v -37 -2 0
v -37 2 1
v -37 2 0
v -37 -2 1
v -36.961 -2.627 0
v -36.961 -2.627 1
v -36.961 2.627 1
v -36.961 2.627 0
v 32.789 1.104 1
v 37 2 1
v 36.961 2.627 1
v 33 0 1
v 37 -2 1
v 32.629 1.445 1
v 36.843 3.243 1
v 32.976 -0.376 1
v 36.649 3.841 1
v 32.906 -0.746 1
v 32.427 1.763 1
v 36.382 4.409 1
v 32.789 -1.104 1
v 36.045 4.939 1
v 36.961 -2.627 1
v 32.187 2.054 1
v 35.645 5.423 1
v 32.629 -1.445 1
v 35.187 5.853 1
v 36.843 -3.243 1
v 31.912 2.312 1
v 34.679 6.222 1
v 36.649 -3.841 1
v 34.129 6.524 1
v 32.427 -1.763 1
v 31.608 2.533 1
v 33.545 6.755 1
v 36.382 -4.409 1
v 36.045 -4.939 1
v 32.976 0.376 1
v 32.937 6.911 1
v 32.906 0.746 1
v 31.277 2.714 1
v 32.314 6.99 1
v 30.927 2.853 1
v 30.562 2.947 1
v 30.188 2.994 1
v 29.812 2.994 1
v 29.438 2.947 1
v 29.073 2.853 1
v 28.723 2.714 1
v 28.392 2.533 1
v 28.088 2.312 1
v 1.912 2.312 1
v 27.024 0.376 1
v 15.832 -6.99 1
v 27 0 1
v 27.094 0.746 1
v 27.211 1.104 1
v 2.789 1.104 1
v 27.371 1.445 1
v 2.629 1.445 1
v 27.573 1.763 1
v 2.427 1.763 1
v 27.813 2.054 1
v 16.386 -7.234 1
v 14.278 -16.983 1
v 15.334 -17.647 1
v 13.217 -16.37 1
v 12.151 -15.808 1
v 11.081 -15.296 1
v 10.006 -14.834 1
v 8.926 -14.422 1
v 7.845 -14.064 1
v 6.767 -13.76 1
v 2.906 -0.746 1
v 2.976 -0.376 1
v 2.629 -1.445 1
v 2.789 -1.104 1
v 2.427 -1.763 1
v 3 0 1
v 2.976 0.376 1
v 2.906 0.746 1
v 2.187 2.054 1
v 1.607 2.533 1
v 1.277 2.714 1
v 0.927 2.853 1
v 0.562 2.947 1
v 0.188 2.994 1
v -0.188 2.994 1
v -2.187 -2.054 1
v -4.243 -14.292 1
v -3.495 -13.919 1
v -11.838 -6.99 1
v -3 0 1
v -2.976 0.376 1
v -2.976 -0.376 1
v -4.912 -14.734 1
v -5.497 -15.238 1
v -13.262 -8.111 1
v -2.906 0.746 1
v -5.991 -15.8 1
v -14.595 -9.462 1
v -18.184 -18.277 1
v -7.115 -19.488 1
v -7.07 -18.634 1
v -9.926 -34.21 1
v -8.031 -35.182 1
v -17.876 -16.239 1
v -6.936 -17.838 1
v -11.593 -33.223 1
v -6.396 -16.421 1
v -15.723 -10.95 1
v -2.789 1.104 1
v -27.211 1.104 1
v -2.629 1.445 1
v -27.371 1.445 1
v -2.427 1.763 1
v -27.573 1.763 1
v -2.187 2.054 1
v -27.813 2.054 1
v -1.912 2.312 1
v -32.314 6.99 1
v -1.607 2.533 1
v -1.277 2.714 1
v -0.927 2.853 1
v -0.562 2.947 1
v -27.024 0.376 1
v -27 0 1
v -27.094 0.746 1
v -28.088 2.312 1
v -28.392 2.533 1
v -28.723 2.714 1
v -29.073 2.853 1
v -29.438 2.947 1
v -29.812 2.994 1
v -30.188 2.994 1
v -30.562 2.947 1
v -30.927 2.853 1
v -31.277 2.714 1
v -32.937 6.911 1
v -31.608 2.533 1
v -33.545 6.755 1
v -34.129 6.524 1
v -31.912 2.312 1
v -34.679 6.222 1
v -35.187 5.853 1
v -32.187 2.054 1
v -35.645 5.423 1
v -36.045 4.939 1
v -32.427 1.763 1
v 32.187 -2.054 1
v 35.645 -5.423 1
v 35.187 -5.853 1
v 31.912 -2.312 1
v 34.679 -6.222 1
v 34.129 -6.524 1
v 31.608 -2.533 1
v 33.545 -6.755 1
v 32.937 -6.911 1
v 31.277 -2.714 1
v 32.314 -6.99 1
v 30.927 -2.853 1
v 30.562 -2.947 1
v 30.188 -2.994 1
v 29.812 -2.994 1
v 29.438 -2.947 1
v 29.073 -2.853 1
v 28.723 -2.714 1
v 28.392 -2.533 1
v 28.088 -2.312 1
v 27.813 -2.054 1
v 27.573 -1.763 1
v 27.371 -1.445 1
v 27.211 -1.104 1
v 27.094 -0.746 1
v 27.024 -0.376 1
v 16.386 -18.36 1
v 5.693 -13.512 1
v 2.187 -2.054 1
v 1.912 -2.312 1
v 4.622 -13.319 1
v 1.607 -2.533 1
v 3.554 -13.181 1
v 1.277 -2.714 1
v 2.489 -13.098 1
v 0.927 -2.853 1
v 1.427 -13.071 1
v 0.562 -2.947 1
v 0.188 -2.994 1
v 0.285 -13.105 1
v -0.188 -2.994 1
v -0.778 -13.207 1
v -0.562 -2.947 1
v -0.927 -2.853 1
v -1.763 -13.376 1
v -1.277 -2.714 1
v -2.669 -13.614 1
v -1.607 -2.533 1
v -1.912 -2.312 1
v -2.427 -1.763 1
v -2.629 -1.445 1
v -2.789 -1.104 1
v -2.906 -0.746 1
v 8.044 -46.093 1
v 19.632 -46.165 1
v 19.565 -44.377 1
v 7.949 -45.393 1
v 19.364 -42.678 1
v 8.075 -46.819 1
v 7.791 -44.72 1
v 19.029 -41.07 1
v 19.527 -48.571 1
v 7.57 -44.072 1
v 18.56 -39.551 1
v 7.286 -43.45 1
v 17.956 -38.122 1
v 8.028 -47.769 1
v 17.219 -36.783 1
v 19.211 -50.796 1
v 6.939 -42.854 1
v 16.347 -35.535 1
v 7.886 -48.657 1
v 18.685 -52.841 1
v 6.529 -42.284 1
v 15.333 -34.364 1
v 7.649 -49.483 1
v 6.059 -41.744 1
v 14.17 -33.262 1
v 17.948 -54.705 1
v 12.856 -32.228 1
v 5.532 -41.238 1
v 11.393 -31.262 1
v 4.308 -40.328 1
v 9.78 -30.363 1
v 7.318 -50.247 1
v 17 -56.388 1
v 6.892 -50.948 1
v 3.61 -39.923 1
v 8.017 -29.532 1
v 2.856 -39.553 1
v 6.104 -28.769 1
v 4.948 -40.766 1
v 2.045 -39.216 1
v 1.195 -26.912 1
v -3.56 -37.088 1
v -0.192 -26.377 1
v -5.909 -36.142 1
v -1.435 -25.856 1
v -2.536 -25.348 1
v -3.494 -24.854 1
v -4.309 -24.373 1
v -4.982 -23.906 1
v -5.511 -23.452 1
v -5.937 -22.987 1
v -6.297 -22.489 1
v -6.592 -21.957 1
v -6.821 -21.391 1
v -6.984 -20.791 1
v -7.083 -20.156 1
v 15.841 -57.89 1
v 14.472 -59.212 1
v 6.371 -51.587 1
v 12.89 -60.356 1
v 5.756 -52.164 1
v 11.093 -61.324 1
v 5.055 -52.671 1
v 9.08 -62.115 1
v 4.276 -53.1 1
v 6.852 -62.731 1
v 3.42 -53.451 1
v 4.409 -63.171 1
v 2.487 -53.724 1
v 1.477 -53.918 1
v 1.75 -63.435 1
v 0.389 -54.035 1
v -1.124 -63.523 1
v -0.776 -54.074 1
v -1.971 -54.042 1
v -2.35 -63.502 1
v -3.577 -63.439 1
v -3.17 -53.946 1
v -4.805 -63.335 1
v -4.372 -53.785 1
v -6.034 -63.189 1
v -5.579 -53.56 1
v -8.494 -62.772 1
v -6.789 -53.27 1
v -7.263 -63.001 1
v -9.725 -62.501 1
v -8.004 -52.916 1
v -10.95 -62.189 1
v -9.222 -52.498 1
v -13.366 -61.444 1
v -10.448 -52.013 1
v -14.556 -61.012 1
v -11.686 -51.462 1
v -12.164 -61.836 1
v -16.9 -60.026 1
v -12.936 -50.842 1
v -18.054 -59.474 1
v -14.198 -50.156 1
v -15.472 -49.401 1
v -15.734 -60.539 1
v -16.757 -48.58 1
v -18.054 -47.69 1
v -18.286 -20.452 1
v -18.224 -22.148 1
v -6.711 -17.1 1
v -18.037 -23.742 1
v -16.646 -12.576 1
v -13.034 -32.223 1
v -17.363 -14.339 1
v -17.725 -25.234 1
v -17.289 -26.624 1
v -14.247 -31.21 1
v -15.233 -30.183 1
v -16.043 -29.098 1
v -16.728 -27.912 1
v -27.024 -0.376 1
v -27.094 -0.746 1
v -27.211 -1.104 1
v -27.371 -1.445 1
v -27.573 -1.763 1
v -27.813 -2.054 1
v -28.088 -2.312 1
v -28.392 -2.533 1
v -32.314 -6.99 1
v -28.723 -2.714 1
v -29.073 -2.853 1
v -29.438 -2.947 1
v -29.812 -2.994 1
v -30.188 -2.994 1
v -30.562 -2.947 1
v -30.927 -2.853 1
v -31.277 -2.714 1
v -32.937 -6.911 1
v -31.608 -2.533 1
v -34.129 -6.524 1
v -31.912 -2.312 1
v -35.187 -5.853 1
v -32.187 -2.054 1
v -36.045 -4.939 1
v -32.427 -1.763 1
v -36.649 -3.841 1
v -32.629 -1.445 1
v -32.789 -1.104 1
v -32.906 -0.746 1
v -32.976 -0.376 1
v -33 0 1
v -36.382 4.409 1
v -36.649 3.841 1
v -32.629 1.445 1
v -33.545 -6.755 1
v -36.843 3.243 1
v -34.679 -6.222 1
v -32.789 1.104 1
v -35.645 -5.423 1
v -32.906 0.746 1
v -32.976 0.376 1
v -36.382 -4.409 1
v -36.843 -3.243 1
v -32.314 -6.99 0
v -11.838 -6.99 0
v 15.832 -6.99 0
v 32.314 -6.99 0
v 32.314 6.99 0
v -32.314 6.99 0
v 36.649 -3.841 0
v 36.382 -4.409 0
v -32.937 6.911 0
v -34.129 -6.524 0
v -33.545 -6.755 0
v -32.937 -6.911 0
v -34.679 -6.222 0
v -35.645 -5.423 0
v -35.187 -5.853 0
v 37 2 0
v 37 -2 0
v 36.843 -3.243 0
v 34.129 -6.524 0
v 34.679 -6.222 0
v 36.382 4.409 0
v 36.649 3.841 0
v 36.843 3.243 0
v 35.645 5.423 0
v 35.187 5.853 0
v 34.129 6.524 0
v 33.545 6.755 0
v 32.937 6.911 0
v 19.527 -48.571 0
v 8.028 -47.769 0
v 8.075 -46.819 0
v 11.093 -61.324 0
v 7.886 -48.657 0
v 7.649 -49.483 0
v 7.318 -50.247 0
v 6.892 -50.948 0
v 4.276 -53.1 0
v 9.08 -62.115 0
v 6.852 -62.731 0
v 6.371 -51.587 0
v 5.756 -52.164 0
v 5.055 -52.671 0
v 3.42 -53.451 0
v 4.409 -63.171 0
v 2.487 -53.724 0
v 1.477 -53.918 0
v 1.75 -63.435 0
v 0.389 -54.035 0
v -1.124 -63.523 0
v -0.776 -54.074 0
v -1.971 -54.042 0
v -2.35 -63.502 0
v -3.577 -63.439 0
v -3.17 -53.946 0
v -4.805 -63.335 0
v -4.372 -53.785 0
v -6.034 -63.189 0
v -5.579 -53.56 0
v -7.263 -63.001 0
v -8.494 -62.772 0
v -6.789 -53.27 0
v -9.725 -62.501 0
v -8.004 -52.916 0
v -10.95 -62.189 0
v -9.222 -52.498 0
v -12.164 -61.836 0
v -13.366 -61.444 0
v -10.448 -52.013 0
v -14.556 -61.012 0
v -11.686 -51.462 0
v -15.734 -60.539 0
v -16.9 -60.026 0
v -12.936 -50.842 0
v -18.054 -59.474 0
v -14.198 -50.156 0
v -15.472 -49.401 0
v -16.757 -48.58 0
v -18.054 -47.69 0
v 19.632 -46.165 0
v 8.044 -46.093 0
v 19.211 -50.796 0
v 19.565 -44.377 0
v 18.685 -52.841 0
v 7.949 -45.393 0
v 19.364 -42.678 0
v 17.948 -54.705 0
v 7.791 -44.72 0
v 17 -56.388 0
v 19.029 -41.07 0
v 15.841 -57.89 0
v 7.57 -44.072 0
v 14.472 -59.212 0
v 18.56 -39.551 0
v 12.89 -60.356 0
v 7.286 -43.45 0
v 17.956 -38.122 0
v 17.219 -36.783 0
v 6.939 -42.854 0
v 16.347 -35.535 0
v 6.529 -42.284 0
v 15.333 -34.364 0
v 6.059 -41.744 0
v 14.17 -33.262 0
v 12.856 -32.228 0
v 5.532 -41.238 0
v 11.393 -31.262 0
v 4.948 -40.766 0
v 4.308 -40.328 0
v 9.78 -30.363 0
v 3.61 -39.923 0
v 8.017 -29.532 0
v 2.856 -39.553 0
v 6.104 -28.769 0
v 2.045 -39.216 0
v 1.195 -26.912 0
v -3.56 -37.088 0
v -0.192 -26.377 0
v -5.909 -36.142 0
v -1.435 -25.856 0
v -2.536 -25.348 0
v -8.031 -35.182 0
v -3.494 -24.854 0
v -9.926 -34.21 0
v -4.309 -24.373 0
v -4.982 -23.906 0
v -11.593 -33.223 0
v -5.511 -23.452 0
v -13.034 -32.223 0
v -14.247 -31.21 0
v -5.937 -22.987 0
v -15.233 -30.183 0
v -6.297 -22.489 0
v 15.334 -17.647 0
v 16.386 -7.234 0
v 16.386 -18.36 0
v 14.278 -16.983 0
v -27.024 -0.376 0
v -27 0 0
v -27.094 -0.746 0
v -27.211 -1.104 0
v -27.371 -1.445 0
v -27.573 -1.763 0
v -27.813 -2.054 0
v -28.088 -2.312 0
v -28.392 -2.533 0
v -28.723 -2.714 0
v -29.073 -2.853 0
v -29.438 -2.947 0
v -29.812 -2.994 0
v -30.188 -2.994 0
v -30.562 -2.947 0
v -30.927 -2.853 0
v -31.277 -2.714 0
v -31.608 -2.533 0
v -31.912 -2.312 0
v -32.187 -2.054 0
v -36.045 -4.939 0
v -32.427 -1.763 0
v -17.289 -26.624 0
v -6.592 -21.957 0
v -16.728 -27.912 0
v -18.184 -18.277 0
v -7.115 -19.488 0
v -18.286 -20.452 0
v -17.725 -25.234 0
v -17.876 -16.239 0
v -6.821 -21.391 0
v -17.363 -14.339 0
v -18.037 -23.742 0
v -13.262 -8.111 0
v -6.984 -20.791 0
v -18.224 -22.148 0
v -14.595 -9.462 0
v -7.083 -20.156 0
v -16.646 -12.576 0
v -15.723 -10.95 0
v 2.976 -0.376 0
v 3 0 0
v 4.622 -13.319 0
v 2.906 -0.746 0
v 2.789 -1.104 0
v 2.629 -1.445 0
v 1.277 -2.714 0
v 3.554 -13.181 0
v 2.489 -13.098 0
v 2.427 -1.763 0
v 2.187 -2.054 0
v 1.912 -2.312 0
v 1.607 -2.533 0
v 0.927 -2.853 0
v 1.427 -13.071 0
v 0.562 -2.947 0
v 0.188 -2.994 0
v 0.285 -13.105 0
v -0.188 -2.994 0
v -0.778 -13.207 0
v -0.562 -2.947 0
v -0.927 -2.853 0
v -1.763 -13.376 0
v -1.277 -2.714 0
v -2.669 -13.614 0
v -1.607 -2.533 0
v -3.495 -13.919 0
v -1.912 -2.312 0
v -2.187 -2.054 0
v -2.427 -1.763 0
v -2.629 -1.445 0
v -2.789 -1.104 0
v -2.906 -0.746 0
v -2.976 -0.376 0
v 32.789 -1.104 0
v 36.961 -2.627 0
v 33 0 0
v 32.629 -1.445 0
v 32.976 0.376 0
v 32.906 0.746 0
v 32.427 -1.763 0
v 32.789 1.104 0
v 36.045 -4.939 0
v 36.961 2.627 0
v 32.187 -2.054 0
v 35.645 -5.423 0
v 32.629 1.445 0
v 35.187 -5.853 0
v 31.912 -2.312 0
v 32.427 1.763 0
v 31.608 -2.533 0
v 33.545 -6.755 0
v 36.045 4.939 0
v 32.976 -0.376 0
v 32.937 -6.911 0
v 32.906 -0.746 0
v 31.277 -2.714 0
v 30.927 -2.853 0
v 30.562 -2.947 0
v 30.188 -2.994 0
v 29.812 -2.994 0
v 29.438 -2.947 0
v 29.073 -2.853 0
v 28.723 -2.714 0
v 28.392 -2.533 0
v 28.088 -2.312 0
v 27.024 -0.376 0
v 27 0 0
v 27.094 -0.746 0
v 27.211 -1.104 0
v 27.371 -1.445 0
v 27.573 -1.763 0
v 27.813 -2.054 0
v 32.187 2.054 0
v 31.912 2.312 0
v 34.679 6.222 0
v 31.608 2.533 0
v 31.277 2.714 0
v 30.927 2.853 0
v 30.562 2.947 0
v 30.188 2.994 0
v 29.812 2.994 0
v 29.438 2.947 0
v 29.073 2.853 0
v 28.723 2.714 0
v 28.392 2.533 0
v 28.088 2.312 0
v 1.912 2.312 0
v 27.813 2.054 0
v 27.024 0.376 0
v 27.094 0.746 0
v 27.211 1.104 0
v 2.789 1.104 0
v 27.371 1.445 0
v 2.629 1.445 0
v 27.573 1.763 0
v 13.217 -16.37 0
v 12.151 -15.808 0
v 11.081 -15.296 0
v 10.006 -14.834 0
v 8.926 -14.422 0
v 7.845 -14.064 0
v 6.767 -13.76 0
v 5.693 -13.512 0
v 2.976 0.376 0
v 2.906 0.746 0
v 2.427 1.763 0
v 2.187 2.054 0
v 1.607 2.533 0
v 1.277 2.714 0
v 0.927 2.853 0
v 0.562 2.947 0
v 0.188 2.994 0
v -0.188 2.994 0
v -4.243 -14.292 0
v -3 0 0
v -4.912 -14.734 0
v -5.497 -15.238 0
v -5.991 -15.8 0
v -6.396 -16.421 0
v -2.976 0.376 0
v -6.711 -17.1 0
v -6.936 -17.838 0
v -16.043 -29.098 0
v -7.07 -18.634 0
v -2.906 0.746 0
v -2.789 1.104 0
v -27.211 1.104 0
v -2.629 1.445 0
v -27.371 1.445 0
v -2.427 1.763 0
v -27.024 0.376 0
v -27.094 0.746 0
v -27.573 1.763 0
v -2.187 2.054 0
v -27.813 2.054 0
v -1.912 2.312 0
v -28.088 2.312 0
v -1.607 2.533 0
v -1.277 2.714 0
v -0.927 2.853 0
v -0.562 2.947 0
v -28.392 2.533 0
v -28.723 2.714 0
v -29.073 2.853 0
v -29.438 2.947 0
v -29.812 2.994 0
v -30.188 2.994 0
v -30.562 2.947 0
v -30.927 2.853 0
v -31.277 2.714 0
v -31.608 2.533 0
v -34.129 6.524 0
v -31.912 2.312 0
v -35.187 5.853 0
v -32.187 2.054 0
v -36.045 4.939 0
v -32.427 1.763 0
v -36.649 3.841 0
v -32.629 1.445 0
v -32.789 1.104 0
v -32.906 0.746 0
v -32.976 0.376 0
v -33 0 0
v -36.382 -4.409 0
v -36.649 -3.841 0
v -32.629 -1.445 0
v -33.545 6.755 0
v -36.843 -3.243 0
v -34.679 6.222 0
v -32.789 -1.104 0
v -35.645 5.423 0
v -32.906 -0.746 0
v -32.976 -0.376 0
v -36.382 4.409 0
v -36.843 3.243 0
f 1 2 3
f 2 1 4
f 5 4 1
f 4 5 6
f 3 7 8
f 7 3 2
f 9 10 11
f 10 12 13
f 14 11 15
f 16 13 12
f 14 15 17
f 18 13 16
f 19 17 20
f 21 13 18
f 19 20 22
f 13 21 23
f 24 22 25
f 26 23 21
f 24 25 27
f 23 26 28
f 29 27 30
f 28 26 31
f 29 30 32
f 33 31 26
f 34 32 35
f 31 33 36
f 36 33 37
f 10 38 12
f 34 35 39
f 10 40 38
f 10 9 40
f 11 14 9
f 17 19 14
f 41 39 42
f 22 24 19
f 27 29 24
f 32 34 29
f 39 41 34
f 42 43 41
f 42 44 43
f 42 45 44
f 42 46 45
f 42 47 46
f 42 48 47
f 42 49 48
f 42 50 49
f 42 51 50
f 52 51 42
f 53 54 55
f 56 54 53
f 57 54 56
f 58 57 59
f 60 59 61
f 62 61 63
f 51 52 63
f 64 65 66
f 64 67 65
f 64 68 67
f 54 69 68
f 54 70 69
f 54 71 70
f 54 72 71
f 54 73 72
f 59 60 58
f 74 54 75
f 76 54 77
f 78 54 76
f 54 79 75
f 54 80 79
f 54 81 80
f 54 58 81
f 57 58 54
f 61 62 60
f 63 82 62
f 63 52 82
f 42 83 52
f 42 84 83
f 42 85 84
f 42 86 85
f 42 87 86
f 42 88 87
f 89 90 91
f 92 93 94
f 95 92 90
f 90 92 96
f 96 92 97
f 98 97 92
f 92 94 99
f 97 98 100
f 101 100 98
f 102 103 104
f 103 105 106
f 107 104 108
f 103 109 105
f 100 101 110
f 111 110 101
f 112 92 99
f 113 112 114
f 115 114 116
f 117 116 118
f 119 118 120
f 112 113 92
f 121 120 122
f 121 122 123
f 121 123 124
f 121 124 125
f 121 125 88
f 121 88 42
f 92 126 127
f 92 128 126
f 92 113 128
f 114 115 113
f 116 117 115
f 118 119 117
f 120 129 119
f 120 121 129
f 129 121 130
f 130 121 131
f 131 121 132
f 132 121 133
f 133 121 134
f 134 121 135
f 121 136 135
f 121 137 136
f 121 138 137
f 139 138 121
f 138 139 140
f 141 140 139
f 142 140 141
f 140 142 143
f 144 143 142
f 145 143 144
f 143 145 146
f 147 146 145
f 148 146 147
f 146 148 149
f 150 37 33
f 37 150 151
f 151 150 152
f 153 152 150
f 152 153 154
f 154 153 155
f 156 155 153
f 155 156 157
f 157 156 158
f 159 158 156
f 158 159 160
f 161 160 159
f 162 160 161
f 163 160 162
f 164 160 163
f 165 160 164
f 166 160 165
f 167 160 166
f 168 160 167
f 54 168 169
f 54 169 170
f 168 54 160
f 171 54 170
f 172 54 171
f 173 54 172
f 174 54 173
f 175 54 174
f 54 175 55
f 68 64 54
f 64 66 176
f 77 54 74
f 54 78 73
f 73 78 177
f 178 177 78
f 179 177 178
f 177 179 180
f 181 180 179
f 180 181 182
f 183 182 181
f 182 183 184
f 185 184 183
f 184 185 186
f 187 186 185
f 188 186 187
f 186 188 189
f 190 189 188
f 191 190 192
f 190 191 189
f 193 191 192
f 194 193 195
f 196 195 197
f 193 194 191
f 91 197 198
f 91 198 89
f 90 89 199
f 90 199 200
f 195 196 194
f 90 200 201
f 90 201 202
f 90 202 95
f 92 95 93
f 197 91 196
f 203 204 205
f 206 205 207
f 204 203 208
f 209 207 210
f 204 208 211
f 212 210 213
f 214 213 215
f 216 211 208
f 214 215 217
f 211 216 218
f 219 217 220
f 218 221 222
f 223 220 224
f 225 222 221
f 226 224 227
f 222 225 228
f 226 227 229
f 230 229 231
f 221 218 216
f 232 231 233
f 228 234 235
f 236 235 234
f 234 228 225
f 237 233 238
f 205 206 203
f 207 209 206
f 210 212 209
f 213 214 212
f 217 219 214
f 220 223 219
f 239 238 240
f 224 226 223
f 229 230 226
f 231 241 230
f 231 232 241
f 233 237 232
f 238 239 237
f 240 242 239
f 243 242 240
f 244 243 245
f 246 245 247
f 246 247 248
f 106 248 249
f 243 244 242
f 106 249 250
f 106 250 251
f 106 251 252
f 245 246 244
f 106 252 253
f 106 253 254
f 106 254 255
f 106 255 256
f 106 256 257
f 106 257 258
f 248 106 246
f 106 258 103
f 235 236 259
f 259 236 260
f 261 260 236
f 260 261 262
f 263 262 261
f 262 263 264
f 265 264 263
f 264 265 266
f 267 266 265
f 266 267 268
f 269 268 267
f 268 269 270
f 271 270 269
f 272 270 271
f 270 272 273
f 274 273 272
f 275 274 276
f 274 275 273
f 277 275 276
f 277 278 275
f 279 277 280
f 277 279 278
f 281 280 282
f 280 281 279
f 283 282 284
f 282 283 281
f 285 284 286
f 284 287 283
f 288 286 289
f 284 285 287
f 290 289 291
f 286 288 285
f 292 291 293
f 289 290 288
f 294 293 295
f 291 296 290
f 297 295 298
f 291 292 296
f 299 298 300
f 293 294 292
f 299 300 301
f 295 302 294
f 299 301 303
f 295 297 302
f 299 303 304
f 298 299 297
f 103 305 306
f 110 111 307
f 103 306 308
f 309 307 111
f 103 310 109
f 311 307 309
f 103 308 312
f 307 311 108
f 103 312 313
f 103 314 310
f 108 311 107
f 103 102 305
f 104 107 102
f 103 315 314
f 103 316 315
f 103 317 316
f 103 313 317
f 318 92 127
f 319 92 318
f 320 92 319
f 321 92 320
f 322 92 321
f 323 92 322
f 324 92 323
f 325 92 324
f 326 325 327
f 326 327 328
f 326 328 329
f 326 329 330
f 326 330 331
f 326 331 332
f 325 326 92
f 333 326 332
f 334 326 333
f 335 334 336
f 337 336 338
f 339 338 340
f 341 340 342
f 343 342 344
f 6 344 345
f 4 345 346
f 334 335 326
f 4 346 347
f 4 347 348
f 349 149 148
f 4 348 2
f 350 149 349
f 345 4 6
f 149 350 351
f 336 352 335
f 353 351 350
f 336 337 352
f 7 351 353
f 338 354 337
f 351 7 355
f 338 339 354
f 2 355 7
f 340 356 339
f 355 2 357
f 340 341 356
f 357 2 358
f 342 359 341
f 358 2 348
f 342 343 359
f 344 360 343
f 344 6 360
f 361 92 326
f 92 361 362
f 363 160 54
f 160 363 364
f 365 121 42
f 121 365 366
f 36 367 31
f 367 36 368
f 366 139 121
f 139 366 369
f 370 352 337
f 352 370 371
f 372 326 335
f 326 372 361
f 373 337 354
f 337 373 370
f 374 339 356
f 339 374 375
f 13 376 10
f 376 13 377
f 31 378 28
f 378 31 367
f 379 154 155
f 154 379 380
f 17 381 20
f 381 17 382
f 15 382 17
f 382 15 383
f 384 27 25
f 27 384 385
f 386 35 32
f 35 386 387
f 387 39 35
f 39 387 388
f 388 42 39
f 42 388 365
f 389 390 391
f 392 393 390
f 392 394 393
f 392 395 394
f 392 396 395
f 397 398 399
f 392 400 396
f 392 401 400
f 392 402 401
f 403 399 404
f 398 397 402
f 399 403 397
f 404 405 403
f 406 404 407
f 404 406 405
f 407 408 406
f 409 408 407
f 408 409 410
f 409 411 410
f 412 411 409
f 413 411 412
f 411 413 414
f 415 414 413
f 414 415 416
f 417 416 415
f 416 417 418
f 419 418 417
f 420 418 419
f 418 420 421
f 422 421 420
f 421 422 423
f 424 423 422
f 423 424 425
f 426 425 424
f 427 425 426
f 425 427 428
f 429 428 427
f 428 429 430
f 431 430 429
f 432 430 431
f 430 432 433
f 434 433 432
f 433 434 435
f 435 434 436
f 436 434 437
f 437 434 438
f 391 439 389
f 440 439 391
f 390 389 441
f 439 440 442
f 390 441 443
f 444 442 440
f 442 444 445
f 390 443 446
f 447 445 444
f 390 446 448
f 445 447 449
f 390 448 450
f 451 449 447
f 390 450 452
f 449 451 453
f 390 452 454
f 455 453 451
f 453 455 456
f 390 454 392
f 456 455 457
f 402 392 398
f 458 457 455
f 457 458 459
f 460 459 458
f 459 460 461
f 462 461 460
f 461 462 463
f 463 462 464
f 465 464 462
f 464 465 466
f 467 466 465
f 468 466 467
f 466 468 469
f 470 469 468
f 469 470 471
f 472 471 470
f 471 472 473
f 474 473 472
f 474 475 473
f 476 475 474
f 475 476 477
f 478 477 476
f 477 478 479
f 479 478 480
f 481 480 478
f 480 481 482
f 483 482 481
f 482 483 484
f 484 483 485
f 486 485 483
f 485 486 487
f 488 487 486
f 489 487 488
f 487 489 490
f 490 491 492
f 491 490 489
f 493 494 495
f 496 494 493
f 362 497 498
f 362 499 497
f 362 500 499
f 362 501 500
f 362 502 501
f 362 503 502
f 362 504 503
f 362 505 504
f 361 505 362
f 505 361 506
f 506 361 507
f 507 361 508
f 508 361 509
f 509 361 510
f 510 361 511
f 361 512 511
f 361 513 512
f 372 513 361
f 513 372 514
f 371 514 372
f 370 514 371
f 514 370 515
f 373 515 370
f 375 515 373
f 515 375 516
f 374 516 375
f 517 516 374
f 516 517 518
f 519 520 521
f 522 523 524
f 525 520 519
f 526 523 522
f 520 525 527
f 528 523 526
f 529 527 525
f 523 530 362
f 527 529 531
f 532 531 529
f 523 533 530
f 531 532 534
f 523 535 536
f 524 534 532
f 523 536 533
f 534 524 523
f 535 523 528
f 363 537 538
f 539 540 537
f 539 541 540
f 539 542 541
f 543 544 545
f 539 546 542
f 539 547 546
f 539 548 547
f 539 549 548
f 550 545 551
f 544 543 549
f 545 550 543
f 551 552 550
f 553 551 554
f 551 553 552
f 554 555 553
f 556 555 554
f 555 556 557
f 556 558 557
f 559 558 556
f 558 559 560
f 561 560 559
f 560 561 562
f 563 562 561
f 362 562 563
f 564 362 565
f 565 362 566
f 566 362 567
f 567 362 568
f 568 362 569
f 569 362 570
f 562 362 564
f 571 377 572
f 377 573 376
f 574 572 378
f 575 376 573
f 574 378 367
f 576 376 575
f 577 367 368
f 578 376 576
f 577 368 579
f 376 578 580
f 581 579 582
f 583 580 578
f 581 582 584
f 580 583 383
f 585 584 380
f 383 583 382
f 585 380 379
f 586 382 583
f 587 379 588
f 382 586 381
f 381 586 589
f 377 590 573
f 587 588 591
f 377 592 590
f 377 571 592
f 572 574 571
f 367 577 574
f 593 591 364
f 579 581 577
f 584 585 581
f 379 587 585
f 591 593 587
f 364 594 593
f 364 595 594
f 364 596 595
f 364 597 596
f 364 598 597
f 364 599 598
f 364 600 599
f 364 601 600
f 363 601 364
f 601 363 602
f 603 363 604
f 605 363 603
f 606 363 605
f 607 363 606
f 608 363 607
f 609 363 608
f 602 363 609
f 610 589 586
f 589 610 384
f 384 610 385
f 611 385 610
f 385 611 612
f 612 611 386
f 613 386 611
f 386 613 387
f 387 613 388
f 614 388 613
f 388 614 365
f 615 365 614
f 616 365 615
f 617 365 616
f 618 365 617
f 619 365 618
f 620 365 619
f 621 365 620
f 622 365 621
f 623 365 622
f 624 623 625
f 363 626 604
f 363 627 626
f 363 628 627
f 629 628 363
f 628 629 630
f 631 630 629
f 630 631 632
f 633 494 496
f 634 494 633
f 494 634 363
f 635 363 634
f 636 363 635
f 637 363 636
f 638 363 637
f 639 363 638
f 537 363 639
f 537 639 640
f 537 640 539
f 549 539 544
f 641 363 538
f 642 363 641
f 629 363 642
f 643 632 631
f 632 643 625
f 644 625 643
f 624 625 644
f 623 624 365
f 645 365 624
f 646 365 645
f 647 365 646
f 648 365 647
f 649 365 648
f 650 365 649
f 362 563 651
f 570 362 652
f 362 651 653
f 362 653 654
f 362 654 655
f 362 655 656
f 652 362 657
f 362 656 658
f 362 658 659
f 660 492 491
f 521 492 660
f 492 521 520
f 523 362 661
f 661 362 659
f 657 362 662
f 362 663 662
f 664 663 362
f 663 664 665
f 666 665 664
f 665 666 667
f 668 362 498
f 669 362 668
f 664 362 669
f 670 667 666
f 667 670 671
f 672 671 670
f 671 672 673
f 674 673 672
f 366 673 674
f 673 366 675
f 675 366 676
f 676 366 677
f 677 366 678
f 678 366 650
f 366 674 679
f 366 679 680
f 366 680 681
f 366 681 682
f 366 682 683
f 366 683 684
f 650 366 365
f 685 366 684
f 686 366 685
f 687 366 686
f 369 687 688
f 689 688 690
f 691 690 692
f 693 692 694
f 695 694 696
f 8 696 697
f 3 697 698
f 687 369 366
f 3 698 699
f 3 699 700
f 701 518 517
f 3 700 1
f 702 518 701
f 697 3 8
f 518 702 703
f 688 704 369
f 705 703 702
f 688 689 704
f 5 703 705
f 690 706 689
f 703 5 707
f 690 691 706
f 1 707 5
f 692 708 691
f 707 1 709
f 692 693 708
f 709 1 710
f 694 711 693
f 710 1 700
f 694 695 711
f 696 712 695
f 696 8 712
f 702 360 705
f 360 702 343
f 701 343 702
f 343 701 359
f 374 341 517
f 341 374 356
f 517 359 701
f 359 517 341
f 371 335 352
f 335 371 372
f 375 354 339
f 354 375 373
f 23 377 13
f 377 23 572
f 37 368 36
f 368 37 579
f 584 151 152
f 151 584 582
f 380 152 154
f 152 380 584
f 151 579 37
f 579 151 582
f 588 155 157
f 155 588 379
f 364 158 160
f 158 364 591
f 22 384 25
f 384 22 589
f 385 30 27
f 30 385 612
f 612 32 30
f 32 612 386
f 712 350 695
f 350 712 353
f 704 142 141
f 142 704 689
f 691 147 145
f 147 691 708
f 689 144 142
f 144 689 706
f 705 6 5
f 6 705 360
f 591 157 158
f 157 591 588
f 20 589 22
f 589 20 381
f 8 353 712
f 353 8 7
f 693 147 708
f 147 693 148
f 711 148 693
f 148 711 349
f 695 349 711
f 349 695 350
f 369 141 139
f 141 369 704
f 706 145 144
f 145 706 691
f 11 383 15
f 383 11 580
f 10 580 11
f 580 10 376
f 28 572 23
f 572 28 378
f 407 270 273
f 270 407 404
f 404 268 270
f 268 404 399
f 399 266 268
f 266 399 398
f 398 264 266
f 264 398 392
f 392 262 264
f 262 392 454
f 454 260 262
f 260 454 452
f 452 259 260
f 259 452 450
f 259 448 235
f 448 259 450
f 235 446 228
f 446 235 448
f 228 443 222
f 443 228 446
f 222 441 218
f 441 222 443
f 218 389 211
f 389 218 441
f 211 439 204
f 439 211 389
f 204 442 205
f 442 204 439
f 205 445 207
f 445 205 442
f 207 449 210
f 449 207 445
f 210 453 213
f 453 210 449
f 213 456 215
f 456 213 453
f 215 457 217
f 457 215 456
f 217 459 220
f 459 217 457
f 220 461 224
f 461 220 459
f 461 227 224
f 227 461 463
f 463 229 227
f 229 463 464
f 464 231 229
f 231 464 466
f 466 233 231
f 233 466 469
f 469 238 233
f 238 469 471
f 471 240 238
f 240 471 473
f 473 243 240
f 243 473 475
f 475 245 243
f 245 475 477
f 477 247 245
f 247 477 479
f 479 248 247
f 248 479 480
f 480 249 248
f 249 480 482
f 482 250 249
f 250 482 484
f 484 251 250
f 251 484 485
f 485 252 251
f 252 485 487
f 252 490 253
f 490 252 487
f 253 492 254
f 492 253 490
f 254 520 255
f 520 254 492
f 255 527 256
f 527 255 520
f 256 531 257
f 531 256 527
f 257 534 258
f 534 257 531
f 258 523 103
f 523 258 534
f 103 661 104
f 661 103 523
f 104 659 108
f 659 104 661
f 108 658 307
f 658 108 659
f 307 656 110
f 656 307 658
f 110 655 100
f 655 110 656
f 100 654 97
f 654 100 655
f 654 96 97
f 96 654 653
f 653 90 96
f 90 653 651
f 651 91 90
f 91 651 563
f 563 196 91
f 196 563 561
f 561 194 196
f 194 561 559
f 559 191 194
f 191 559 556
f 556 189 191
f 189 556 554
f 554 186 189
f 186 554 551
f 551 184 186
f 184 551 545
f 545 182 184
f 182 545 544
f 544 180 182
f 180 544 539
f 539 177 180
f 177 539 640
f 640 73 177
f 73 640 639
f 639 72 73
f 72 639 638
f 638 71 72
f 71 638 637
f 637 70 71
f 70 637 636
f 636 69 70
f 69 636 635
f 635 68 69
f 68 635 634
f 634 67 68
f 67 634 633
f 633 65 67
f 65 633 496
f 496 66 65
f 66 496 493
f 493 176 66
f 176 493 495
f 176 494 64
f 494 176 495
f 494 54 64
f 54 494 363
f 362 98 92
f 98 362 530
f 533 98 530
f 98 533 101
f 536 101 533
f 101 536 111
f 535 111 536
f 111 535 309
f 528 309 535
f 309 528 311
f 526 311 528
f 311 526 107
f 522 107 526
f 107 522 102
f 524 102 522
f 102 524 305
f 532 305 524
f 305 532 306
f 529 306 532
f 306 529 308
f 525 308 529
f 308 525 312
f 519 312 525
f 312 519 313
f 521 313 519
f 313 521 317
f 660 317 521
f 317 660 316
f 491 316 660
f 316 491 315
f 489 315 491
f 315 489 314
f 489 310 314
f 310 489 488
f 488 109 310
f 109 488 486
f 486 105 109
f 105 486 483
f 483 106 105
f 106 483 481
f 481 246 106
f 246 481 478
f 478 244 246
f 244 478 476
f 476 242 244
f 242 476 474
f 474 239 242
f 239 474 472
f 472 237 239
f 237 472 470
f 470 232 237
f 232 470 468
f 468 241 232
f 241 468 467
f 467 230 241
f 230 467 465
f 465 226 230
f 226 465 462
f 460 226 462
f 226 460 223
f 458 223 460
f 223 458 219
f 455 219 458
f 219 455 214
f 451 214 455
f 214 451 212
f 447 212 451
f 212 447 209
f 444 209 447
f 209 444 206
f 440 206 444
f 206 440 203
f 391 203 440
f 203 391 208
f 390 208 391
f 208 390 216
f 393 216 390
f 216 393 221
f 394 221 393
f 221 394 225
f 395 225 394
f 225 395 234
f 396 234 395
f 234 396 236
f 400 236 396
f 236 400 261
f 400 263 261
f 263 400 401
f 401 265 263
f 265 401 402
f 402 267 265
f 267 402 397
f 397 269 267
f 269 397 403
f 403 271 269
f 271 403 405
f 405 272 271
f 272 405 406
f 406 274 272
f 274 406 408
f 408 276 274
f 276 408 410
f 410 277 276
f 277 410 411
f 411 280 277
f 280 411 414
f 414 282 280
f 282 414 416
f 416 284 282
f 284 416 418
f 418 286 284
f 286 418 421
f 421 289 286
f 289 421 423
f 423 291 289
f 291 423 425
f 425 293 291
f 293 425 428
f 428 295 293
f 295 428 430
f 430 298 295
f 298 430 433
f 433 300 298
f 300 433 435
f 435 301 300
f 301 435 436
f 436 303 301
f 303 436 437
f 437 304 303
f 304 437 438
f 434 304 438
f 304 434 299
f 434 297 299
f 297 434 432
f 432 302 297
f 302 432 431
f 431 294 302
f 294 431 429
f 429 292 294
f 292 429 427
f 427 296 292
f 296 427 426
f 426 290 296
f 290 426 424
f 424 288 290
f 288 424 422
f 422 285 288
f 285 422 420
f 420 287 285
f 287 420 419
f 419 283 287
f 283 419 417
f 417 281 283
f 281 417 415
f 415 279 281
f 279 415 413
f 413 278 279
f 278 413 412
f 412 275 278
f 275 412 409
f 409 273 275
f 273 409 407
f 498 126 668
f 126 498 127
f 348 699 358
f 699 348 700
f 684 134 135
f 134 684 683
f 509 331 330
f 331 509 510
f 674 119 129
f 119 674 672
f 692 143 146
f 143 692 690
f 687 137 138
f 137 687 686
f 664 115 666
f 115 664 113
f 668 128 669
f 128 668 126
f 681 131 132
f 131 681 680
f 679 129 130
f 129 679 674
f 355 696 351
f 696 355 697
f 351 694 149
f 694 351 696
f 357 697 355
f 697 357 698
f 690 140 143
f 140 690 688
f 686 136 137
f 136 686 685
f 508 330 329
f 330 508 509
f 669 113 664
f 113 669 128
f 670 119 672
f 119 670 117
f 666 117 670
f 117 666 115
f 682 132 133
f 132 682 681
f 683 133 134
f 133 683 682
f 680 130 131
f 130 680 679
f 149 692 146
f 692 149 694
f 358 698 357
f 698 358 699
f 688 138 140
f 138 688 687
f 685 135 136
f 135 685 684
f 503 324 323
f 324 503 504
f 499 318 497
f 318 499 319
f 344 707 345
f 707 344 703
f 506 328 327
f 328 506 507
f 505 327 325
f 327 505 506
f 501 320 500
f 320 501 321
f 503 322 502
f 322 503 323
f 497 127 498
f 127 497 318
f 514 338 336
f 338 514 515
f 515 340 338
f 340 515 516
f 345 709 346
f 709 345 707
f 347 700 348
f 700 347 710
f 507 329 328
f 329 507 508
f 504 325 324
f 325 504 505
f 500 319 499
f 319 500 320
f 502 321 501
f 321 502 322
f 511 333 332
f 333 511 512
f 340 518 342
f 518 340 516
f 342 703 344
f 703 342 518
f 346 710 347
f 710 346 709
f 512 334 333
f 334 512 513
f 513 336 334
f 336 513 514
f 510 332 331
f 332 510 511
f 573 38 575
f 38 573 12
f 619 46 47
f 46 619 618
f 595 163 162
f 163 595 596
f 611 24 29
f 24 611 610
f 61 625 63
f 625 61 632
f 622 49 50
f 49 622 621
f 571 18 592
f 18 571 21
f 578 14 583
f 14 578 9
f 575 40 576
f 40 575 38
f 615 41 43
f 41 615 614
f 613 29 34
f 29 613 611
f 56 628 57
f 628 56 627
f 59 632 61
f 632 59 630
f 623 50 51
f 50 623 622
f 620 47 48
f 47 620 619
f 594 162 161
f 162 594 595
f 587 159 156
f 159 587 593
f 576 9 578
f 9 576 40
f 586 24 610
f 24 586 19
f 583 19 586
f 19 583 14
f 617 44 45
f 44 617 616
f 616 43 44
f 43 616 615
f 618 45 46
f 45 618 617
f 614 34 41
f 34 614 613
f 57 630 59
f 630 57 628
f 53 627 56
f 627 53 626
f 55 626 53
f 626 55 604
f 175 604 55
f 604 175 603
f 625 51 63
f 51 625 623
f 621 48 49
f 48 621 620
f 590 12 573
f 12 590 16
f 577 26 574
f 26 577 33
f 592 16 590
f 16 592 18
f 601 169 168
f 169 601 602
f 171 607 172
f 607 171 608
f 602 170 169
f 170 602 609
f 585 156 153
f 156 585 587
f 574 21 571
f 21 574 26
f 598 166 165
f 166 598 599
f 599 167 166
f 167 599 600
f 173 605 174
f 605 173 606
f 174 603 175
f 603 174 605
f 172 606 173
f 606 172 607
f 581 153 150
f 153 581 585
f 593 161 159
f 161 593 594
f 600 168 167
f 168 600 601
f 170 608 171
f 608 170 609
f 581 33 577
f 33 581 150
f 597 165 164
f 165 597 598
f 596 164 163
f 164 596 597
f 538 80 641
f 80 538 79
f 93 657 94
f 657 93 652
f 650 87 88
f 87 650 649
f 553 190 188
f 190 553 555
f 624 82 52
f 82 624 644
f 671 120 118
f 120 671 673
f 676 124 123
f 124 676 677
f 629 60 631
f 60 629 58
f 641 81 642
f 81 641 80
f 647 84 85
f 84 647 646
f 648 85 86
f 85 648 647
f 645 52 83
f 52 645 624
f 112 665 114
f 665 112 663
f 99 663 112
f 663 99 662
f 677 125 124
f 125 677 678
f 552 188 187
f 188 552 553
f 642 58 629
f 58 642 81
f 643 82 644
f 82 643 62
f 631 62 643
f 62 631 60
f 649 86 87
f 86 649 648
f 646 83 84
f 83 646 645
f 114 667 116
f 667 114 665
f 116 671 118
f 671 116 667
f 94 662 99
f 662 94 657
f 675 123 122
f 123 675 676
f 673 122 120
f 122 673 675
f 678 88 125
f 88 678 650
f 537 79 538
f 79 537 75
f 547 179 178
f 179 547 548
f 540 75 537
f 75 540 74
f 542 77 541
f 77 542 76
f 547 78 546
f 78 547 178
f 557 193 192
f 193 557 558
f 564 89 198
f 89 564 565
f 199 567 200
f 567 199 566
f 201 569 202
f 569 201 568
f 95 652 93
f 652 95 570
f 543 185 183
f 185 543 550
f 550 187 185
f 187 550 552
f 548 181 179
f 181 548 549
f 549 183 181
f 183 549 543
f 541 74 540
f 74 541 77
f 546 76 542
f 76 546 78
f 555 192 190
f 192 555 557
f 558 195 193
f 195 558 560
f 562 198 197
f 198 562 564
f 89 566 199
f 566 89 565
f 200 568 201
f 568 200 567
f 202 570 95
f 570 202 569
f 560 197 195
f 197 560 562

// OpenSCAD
$fn = 50;


difference() {
	union() {
		translate(v = [0, 0, 0]) {
			rotate(a = [0, 0, 0]) {
				hull() {
					translate(v = [-32.0000000000, 2.0000000000, 0]) {
						rotate(a = [0, 0, 0]) {
							translate(v = [0, 0, 0]) {
								rotate(a = [0, 0, 0]) {
									cylinder(h = 1, r = 5);
								}
							}
						}
					}
					translate(v = [32.0000000000, 2.0000000000, 0]) {
						rotate(a = [0, 0, 0]) {
							translate(v = [0, 0, 0]) {
								rotate(a = [0, 0, 0]) {
									cylinder(h = 1, r = 5);
								}
							}
						}
					}
					translate(v = [-32.0000000000, -2.0000000000, 0]) {
						rotate(a = [0, 0, 0]) {
							translate(v = [0, 0, 0]) {
								rotate(a = [0, 0, 0]) {
									cylinder(h = 1, r = 5);
								}
							}
						}
					}
					translate(v = [32.0000000000, -2.0000000000, 0]) {
						rotate(a = [0, 0, 0]) {
							translate(v = [0, 0, 0]) {
								rotate(a = [0, 0, 0]) {
									cylinder(h = 1, r = 5);
								}
							}
						}
					}
				}
			}
		}
		translate(v = [0, -5, 0]) {
			rotate(a = [0, 0, 0]) {
				linear_extrude(height = 1) {
					text(font = "DejaVu Sans Mono:style=Bold", halign = "center", size = 57.0000000000, text = "S", valign = "top");
				}
			}
		}
	}
	union() {
		translate(v = [-30.0000000000, 0.0000000000, -125.0000000000]) {
			rotate(a = [0, 0, 0]) {
				cylinder(h = 250, r = 3.0000000000);
			}
		}
		translate(v = [30.0000000000, 0.0000000000, -125.0000000000]) {
			rotate(a = [0, 0, 0]) {
				cylinder(h = 250, r = 3.0000000000);
			}
		}
		translate(v = [30.0000000000, 0.0000000000, -125.0000000000]) {
			rotate(a = [0, 0, 0]) {
				cylinder(h = 250, r = 3.0000000000);
			}
		}
		translate(v = [0, 0, -125.0000000000]) {
			rotate(a = [0, 0, 0]) {
				cylinder(h = 250, r = 3.0000000000);
			}
		}
	}
}
